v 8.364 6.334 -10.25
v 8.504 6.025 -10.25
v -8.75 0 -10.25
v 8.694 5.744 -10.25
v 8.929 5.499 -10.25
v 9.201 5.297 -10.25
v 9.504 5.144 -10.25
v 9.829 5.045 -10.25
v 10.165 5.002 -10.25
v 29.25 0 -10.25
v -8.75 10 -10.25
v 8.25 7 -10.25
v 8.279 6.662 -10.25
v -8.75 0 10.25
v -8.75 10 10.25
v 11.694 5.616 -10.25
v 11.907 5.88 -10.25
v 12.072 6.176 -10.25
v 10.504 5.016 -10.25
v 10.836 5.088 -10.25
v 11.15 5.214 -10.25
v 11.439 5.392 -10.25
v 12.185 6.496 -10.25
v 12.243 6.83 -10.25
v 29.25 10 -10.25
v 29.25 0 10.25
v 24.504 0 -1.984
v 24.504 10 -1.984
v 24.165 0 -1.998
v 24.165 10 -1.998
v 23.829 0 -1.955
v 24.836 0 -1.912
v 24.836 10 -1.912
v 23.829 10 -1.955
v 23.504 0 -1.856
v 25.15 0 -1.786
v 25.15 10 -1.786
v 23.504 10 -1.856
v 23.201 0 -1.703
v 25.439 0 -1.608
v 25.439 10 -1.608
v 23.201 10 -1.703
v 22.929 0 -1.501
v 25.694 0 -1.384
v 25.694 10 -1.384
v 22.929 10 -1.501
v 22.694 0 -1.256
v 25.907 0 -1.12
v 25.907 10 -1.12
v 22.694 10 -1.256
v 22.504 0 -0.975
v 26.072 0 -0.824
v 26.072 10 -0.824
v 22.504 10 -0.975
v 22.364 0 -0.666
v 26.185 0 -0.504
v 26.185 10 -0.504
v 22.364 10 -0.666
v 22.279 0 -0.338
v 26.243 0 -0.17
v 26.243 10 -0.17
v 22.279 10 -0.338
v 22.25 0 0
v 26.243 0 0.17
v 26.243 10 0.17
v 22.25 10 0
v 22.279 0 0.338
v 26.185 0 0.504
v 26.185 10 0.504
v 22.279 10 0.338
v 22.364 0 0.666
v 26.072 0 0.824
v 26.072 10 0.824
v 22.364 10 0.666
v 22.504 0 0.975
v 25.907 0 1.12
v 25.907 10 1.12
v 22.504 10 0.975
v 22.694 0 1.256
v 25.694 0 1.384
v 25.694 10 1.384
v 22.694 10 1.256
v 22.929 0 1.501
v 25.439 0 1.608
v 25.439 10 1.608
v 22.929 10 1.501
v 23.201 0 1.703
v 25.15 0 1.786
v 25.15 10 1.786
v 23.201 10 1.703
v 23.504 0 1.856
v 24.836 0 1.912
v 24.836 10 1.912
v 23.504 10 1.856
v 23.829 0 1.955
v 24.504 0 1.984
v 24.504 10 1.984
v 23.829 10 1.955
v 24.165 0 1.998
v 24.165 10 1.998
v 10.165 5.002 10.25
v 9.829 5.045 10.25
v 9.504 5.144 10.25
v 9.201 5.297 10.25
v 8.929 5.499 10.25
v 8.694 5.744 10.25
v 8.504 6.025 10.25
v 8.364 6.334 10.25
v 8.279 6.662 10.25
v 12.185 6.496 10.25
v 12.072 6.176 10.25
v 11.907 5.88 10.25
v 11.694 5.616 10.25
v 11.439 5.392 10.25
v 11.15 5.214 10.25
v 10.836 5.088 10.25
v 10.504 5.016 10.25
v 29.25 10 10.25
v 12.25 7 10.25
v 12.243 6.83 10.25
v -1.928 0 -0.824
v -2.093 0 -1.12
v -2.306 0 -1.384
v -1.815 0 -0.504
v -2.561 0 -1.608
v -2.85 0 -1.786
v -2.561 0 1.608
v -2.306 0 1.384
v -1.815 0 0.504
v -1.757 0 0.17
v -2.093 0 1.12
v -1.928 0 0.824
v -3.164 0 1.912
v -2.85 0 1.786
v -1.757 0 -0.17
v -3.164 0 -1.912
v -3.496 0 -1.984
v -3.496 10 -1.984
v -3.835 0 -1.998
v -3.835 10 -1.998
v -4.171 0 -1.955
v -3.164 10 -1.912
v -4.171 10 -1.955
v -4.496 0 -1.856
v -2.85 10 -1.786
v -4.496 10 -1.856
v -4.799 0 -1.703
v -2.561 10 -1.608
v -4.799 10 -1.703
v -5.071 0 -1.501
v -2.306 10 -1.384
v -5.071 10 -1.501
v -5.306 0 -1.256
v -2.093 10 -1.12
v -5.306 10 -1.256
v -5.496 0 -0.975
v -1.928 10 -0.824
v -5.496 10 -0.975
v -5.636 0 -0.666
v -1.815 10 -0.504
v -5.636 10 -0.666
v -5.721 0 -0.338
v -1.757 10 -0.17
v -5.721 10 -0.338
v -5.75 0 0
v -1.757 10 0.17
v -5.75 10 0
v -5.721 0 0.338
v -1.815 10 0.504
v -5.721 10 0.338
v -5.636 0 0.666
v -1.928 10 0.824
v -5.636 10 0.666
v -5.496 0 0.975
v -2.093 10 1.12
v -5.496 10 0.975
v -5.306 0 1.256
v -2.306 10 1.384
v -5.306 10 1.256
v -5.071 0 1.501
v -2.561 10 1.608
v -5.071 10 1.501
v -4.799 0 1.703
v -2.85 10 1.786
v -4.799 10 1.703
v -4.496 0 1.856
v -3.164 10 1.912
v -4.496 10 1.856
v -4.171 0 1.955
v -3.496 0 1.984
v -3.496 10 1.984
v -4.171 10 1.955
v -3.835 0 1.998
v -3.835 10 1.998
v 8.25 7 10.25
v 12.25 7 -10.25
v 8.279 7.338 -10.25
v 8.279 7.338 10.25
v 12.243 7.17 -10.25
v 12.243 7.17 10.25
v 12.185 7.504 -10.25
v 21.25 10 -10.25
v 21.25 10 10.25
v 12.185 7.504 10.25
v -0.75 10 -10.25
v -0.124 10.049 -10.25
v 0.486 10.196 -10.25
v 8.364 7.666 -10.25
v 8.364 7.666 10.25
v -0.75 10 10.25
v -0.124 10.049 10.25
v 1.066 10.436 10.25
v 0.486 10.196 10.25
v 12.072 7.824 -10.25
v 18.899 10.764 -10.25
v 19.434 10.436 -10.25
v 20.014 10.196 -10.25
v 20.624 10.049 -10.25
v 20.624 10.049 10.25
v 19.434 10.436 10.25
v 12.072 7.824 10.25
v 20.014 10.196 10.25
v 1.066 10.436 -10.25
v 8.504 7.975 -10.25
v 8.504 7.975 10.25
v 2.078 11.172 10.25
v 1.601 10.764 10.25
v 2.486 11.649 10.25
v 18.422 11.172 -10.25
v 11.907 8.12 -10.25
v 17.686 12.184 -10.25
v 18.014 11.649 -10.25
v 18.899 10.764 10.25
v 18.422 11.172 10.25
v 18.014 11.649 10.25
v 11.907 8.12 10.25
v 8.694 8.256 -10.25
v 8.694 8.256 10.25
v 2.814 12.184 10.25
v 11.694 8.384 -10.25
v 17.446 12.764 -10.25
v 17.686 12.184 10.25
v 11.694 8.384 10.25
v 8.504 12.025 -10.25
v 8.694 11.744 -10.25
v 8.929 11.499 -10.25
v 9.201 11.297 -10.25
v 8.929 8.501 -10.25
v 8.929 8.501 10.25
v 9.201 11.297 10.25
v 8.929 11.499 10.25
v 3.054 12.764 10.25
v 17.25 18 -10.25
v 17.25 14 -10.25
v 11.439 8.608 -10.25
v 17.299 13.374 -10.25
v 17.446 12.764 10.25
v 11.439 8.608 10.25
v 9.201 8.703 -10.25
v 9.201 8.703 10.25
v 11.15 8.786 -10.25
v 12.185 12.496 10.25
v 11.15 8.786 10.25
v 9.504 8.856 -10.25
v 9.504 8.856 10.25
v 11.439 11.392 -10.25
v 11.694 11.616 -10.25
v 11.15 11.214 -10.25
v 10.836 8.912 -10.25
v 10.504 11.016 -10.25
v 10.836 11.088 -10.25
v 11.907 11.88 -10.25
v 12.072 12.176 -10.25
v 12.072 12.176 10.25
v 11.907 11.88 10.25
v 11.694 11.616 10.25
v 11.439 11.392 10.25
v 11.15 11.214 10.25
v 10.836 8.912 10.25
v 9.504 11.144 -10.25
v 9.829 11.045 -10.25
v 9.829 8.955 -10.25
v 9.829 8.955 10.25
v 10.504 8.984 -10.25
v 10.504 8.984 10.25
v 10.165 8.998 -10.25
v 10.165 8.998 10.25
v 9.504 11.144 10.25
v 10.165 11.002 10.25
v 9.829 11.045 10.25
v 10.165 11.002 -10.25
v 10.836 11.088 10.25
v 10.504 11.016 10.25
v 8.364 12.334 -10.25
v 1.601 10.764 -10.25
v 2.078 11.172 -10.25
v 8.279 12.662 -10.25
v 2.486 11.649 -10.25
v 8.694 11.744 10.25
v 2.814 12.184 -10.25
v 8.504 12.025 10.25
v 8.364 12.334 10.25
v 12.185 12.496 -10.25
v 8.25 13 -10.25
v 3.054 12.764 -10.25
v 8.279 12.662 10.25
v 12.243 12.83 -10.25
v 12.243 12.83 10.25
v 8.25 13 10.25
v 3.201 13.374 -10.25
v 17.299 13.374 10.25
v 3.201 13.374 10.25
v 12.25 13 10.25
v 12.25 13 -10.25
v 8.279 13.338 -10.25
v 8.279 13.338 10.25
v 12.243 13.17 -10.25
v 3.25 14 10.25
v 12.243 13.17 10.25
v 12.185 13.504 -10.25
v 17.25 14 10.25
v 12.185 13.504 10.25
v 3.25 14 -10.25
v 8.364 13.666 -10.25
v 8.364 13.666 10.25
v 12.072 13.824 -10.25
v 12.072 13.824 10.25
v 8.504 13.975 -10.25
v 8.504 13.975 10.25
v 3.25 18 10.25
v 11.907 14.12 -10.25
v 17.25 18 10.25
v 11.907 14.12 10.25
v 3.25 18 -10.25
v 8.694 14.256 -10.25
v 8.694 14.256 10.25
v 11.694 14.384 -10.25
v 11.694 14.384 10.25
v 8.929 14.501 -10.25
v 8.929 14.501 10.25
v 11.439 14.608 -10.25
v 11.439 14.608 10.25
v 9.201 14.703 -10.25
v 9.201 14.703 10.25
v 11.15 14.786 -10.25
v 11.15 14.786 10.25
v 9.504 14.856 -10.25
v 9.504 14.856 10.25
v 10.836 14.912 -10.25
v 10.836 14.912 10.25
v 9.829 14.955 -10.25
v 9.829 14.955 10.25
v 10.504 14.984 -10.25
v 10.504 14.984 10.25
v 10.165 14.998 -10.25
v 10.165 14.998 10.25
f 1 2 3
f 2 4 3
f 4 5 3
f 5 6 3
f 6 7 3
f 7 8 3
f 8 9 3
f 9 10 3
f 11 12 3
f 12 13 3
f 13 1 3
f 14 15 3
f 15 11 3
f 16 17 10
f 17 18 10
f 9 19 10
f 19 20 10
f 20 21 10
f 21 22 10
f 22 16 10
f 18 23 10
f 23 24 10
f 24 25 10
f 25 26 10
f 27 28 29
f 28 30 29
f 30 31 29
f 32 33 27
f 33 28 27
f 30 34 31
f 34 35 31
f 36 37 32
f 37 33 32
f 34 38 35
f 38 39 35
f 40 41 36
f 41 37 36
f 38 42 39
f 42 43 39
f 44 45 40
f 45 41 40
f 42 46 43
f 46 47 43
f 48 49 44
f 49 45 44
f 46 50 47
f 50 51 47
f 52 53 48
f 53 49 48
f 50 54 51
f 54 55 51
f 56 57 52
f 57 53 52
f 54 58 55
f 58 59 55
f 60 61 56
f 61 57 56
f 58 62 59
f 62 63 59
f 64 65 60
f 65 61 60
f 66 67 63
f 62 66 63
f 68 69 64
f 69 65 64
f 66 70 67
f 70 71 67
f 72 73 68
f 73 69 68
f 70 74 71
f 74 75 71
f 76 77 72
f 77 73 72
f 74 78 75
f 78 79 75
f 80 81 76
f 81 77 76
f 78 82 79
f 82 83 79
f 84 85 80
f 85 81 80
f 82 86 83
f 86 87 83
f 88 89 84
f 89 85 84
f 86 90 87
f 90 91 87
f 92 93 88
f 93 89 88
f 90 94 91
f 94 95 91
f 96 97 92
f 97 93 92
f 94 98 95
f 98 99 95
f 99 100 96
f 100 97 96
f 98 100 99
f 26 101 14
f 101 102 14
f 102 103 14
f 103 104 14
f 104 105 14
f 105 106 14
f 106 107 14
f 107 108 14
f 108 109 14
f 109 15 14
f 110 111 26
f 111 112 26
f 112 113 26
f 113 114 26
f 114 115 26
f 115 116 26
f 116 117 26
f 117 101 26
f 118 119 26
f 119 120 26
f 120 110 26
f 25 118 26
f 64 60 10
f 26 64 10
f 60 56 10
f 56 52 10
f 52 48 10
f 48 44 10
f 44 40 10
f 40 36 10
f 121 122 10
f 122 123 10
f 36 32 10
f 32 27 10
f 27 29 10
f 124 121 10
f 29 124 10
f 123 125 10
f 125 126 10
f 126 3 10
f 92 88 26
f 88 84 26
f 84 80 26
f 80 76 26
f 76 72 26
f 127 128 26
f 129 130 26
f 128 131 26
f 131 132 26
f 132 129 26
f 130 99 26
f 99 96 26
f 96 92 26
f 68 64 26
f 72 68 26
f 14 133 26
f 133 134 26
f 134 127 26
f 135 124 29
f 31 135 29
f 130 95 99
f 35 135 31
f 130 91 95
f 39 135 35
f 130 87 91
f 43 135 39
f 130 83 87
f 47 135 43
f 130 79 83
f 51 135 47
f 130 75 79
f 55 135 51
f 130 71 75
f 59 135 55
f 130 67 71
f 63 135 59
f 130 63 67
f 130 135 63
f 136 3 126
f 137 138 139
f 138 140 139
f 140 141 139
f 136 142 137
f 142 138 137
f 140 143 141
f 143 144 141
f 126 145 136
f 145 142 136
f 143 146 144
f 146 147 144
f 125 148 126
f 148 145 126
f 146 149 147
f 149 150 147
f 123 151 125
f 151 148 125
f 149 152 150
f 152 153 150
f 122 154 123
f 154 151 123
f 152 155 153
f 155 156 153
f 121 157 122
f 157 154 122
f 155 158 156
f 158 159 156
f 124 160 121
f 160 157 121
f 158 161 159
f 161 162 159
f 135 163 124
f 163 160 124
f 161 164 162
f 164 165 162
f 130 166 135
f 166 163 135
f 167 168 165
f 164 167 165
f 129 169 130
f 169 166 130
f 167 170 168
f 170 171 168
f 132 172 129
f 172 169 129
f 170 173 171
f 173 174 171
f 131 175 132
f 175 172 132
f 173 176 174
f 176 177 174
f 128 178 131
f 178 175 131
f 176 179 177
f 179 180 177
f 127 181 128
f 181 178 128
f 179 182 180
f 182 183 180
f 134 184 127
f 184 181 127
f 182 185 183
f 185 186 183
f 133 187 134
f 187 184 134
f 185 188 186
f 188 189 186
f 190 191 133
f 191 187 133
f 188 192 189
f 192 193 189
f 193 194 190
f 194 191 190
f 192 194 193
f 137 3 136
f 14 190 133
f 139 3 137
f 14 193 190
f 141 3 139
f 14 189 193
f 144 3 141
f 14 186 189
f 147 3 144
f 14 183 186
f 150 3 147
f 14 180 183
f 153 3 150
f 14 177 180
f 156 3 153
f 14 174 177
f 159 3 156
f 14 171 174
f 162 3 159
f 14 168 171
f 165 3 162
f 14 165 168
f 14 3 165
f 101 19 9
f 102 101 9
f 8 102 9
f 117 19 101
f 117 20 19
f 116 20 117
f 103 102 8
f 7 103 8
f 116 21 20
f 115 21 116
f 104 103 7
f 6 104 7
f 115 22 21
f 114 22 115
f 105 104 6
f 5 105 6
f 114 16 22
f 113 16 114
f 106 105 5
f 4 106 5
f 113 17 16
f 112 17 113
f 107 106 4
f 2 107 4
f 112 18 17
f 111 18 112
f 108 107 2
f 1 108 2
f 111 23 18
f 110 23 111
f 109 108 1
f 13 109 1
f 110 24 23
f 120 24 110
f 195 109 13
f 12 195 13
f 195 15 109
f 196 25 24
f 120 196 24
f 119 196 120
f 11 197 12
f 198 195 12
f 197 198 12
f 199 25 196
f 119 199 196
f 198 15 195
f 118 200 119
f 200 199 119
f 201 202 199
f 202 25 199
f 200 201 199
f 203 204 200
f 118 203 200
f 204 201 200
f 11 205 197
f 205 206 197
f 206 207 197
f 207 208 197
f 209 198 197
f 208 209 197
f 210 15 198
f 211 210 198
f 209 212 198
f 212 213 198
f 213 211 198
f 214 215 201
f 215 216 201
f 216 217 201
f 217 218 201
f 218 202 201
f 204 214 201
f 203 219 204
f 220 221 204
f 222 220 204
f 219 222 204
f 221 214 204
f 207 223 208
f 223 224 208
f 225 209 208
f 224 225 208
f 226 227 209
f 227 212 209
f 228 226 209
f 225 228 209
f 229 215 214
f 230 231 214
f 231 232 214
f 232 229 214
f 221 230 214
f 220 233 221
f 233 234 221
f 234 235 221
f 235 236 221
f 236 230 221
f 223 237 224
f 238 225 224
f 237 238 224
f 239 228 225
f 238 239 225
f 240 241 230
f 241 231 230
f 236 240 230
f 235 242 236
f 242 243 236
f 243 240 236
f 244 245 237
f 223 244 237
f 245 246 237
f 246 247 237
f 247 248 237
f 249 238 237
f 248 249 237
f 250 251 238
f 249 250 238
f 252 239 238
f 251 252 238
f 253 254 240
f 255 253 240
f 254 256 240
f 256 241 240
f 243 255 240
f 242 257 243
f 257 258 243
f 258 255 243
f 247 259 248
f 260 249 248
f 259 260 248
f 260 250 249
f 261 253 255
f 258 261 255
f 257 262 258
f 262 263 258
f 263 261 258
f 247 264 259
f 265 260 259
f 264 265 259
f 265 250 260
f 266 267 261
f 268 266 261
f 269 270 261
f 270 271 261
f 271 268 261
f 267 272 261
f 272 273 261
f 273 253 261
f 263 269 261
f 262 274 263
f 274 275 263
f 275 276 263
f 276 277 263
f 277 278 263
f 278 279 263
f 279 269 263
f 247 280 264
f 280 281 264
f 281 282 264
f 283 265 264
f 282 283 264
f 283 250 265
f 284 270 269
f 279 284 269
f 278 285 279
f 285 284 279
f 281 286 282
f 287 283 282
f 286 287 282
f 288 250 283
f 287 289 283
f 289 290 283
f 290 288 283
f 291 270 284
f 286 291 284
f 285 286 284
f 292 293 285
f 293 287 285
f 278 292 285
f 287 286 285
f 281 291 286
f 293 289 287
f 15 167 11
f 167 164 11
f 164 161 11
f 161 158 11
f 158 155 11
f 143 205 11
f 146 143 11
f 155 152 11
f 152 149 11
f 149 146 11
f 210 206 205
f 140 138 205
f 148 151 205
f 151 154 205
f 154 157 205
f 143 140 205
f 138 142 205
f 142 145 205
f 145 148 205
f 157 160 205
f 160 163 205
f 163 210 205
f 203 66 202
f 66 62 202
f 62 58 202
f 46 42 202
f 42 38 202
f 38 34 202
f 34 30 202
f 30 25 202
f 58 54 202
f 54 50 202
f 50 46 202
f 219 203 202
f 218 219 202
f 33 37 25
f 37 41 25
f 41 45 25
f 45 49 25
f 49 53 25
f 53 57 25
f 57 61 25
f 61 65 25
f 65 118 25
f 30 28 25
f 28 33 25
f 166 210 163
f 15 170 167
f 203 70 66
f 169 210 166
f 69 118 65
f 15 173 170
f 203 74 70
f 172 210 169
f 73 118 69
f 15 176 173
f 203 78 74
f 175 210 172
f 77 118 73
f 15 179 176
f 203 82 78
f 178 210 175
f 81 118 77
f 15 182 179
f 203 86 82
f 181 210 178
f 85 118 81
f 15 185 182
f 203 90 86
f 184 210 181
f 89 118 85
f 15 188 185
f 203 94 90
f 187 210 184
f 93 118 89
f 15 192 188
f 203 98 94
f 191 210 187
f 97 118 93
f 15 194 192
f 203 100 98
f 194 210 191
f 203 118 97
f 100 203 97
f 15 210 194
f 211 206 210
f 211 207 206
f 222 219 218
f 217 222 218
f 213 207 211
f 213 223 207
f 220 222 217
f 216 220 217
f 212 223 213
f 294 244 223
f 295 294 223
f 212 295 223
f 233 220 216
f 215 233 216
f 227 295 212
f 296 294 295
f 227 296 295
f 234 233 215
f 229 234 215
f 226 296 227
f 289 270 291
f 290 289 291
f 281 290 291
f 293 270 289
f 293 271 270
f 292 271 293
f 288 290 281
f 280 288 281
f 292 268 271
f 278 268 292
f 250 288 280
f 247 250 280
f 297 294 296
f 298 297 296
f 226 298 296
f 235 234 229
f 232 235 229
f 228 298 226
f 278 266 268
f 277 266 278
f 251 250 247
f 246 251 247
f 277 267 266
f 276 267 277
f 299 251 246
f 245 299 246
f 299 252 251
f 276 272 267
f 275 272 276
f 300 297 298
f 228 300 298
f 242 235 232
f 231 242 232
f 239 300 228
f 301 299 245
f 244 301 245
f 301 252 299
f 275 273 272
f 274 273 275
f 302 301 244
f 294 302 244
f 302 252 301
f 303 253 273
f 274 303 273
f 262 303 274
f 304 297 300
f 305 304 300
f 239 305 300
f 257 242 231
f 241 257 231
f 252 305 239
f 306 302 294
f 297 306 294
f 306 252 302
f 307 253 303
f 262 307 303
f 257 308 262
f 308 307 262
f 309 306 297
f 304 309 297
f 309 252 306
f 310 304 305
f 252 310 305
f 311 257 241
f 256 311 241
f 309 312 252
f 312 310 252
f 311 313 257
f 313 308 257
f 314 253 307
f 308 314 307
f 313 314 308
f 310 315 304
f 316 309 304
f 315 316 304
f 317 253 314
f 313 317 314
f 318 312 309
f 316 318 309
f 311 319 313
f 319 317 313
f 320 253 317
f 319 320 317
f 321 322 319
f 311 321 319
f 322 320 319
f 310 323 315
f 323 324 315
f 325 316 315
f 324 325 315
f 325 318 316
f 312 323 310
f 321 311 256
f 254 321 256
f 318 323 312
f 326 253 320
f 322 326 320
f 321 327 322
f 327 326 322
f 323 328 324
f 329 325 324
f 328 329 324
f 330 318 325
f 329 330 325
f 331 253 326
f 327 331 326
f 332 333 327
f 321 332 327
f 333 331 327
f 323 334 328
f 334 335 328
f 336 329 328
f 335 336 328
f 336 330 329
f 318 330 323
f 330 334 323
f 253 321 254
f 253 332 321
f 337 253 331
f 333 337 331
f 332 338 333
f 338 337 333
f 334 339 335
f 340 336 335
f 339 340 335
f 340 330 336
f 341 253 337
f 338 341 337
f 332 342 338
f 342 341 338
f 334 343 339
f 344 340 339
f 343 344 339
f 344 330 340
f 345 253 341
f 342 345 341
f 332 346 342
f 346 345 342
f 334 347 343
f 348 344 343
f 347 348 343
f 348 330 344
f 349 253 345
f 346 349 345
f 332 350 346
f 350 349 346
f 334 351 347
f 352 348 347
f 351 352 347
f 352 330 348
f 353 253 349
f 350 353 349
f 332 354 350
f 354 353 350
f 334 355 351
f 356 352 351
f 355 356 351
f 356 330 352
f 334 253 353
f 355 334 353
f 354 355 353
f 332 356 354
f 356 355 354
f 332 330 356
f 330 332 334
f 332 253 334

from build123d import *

# Parameters (mm, degrees)
SKETCH_1_R          = 2
EXTRUDE_1_DEPTH     = 20.5
SKETCH_2_R          = 2
CUT_EXTRUDE_1_DEPTH = 20.5
MOVE_BODY_1_ANGLE   = 90


with BuildPart() as part:
    # 草图1 → 凸台-拉伸1 (new body)
    with BuildSketch(Plane(origin=(0, 0, 0), x_dir=(0, 0, -1), z_dir=(1, 0, 0))):
        with BuildLine():
            Line((-7, 18), (7, 18))
            Line((7, 18), (7, 14))
            ThreePointArc((7, 14), (8.171572875, 11.171572875), (11, 10))
            Line((11, 10), (19, 10))
            Line((19, 10), (19, 0))
            Line((19, 0), (7, 0))
            Line((7, 0), (-7, 0))
            Line((-7, 0), (-19, 0))
            Line((-19, 0), (-19, 10))
            Line((-19, 10), (-11, 10))
            ThreePointArc((-11, 10), (-8.171572875, 11.171572875), (-7, 14))
            Line((-7, 14), (-7, 18))
        make_face()
        with Locations((0, 13)):
            Circle(SKETCH_1_R, mode=Mode.SUBTRACT)
        with Locations((0, 7)):
            Circle(SKETCH_1_R, mode=Mode.SUBTRACT)
    extrude(amount=EXTRUDE_1_DEPTH)

    # 草图2 → 切除-拉伸1 (cut)
    with BuildSketch(Plane(origin=(0, 10, 0), x_dir=(1, 0, 0), z_dir=(0, 1, 0))):
        with Locations(Location((10.25, 14, 0), (0, 0, 270))):
            Circle(SKETCH_2_R)
        with Locations(Location((10.25, -14, 0), (0, 0, 270))):
            Circle(SKETCH_2_R)
    extrude(amount=-CUT_EXTRUDE_1_DEPTH, mode=Mode.SUBTRACT)


with BuildPart() as part_1:
    # Move Body 1: moved
    add(part.part.rotate(Axis((10.25, 0, 0), (0, -1, 0)), MOVE_BODY_1_ANGLE))


solid = part_1.part
